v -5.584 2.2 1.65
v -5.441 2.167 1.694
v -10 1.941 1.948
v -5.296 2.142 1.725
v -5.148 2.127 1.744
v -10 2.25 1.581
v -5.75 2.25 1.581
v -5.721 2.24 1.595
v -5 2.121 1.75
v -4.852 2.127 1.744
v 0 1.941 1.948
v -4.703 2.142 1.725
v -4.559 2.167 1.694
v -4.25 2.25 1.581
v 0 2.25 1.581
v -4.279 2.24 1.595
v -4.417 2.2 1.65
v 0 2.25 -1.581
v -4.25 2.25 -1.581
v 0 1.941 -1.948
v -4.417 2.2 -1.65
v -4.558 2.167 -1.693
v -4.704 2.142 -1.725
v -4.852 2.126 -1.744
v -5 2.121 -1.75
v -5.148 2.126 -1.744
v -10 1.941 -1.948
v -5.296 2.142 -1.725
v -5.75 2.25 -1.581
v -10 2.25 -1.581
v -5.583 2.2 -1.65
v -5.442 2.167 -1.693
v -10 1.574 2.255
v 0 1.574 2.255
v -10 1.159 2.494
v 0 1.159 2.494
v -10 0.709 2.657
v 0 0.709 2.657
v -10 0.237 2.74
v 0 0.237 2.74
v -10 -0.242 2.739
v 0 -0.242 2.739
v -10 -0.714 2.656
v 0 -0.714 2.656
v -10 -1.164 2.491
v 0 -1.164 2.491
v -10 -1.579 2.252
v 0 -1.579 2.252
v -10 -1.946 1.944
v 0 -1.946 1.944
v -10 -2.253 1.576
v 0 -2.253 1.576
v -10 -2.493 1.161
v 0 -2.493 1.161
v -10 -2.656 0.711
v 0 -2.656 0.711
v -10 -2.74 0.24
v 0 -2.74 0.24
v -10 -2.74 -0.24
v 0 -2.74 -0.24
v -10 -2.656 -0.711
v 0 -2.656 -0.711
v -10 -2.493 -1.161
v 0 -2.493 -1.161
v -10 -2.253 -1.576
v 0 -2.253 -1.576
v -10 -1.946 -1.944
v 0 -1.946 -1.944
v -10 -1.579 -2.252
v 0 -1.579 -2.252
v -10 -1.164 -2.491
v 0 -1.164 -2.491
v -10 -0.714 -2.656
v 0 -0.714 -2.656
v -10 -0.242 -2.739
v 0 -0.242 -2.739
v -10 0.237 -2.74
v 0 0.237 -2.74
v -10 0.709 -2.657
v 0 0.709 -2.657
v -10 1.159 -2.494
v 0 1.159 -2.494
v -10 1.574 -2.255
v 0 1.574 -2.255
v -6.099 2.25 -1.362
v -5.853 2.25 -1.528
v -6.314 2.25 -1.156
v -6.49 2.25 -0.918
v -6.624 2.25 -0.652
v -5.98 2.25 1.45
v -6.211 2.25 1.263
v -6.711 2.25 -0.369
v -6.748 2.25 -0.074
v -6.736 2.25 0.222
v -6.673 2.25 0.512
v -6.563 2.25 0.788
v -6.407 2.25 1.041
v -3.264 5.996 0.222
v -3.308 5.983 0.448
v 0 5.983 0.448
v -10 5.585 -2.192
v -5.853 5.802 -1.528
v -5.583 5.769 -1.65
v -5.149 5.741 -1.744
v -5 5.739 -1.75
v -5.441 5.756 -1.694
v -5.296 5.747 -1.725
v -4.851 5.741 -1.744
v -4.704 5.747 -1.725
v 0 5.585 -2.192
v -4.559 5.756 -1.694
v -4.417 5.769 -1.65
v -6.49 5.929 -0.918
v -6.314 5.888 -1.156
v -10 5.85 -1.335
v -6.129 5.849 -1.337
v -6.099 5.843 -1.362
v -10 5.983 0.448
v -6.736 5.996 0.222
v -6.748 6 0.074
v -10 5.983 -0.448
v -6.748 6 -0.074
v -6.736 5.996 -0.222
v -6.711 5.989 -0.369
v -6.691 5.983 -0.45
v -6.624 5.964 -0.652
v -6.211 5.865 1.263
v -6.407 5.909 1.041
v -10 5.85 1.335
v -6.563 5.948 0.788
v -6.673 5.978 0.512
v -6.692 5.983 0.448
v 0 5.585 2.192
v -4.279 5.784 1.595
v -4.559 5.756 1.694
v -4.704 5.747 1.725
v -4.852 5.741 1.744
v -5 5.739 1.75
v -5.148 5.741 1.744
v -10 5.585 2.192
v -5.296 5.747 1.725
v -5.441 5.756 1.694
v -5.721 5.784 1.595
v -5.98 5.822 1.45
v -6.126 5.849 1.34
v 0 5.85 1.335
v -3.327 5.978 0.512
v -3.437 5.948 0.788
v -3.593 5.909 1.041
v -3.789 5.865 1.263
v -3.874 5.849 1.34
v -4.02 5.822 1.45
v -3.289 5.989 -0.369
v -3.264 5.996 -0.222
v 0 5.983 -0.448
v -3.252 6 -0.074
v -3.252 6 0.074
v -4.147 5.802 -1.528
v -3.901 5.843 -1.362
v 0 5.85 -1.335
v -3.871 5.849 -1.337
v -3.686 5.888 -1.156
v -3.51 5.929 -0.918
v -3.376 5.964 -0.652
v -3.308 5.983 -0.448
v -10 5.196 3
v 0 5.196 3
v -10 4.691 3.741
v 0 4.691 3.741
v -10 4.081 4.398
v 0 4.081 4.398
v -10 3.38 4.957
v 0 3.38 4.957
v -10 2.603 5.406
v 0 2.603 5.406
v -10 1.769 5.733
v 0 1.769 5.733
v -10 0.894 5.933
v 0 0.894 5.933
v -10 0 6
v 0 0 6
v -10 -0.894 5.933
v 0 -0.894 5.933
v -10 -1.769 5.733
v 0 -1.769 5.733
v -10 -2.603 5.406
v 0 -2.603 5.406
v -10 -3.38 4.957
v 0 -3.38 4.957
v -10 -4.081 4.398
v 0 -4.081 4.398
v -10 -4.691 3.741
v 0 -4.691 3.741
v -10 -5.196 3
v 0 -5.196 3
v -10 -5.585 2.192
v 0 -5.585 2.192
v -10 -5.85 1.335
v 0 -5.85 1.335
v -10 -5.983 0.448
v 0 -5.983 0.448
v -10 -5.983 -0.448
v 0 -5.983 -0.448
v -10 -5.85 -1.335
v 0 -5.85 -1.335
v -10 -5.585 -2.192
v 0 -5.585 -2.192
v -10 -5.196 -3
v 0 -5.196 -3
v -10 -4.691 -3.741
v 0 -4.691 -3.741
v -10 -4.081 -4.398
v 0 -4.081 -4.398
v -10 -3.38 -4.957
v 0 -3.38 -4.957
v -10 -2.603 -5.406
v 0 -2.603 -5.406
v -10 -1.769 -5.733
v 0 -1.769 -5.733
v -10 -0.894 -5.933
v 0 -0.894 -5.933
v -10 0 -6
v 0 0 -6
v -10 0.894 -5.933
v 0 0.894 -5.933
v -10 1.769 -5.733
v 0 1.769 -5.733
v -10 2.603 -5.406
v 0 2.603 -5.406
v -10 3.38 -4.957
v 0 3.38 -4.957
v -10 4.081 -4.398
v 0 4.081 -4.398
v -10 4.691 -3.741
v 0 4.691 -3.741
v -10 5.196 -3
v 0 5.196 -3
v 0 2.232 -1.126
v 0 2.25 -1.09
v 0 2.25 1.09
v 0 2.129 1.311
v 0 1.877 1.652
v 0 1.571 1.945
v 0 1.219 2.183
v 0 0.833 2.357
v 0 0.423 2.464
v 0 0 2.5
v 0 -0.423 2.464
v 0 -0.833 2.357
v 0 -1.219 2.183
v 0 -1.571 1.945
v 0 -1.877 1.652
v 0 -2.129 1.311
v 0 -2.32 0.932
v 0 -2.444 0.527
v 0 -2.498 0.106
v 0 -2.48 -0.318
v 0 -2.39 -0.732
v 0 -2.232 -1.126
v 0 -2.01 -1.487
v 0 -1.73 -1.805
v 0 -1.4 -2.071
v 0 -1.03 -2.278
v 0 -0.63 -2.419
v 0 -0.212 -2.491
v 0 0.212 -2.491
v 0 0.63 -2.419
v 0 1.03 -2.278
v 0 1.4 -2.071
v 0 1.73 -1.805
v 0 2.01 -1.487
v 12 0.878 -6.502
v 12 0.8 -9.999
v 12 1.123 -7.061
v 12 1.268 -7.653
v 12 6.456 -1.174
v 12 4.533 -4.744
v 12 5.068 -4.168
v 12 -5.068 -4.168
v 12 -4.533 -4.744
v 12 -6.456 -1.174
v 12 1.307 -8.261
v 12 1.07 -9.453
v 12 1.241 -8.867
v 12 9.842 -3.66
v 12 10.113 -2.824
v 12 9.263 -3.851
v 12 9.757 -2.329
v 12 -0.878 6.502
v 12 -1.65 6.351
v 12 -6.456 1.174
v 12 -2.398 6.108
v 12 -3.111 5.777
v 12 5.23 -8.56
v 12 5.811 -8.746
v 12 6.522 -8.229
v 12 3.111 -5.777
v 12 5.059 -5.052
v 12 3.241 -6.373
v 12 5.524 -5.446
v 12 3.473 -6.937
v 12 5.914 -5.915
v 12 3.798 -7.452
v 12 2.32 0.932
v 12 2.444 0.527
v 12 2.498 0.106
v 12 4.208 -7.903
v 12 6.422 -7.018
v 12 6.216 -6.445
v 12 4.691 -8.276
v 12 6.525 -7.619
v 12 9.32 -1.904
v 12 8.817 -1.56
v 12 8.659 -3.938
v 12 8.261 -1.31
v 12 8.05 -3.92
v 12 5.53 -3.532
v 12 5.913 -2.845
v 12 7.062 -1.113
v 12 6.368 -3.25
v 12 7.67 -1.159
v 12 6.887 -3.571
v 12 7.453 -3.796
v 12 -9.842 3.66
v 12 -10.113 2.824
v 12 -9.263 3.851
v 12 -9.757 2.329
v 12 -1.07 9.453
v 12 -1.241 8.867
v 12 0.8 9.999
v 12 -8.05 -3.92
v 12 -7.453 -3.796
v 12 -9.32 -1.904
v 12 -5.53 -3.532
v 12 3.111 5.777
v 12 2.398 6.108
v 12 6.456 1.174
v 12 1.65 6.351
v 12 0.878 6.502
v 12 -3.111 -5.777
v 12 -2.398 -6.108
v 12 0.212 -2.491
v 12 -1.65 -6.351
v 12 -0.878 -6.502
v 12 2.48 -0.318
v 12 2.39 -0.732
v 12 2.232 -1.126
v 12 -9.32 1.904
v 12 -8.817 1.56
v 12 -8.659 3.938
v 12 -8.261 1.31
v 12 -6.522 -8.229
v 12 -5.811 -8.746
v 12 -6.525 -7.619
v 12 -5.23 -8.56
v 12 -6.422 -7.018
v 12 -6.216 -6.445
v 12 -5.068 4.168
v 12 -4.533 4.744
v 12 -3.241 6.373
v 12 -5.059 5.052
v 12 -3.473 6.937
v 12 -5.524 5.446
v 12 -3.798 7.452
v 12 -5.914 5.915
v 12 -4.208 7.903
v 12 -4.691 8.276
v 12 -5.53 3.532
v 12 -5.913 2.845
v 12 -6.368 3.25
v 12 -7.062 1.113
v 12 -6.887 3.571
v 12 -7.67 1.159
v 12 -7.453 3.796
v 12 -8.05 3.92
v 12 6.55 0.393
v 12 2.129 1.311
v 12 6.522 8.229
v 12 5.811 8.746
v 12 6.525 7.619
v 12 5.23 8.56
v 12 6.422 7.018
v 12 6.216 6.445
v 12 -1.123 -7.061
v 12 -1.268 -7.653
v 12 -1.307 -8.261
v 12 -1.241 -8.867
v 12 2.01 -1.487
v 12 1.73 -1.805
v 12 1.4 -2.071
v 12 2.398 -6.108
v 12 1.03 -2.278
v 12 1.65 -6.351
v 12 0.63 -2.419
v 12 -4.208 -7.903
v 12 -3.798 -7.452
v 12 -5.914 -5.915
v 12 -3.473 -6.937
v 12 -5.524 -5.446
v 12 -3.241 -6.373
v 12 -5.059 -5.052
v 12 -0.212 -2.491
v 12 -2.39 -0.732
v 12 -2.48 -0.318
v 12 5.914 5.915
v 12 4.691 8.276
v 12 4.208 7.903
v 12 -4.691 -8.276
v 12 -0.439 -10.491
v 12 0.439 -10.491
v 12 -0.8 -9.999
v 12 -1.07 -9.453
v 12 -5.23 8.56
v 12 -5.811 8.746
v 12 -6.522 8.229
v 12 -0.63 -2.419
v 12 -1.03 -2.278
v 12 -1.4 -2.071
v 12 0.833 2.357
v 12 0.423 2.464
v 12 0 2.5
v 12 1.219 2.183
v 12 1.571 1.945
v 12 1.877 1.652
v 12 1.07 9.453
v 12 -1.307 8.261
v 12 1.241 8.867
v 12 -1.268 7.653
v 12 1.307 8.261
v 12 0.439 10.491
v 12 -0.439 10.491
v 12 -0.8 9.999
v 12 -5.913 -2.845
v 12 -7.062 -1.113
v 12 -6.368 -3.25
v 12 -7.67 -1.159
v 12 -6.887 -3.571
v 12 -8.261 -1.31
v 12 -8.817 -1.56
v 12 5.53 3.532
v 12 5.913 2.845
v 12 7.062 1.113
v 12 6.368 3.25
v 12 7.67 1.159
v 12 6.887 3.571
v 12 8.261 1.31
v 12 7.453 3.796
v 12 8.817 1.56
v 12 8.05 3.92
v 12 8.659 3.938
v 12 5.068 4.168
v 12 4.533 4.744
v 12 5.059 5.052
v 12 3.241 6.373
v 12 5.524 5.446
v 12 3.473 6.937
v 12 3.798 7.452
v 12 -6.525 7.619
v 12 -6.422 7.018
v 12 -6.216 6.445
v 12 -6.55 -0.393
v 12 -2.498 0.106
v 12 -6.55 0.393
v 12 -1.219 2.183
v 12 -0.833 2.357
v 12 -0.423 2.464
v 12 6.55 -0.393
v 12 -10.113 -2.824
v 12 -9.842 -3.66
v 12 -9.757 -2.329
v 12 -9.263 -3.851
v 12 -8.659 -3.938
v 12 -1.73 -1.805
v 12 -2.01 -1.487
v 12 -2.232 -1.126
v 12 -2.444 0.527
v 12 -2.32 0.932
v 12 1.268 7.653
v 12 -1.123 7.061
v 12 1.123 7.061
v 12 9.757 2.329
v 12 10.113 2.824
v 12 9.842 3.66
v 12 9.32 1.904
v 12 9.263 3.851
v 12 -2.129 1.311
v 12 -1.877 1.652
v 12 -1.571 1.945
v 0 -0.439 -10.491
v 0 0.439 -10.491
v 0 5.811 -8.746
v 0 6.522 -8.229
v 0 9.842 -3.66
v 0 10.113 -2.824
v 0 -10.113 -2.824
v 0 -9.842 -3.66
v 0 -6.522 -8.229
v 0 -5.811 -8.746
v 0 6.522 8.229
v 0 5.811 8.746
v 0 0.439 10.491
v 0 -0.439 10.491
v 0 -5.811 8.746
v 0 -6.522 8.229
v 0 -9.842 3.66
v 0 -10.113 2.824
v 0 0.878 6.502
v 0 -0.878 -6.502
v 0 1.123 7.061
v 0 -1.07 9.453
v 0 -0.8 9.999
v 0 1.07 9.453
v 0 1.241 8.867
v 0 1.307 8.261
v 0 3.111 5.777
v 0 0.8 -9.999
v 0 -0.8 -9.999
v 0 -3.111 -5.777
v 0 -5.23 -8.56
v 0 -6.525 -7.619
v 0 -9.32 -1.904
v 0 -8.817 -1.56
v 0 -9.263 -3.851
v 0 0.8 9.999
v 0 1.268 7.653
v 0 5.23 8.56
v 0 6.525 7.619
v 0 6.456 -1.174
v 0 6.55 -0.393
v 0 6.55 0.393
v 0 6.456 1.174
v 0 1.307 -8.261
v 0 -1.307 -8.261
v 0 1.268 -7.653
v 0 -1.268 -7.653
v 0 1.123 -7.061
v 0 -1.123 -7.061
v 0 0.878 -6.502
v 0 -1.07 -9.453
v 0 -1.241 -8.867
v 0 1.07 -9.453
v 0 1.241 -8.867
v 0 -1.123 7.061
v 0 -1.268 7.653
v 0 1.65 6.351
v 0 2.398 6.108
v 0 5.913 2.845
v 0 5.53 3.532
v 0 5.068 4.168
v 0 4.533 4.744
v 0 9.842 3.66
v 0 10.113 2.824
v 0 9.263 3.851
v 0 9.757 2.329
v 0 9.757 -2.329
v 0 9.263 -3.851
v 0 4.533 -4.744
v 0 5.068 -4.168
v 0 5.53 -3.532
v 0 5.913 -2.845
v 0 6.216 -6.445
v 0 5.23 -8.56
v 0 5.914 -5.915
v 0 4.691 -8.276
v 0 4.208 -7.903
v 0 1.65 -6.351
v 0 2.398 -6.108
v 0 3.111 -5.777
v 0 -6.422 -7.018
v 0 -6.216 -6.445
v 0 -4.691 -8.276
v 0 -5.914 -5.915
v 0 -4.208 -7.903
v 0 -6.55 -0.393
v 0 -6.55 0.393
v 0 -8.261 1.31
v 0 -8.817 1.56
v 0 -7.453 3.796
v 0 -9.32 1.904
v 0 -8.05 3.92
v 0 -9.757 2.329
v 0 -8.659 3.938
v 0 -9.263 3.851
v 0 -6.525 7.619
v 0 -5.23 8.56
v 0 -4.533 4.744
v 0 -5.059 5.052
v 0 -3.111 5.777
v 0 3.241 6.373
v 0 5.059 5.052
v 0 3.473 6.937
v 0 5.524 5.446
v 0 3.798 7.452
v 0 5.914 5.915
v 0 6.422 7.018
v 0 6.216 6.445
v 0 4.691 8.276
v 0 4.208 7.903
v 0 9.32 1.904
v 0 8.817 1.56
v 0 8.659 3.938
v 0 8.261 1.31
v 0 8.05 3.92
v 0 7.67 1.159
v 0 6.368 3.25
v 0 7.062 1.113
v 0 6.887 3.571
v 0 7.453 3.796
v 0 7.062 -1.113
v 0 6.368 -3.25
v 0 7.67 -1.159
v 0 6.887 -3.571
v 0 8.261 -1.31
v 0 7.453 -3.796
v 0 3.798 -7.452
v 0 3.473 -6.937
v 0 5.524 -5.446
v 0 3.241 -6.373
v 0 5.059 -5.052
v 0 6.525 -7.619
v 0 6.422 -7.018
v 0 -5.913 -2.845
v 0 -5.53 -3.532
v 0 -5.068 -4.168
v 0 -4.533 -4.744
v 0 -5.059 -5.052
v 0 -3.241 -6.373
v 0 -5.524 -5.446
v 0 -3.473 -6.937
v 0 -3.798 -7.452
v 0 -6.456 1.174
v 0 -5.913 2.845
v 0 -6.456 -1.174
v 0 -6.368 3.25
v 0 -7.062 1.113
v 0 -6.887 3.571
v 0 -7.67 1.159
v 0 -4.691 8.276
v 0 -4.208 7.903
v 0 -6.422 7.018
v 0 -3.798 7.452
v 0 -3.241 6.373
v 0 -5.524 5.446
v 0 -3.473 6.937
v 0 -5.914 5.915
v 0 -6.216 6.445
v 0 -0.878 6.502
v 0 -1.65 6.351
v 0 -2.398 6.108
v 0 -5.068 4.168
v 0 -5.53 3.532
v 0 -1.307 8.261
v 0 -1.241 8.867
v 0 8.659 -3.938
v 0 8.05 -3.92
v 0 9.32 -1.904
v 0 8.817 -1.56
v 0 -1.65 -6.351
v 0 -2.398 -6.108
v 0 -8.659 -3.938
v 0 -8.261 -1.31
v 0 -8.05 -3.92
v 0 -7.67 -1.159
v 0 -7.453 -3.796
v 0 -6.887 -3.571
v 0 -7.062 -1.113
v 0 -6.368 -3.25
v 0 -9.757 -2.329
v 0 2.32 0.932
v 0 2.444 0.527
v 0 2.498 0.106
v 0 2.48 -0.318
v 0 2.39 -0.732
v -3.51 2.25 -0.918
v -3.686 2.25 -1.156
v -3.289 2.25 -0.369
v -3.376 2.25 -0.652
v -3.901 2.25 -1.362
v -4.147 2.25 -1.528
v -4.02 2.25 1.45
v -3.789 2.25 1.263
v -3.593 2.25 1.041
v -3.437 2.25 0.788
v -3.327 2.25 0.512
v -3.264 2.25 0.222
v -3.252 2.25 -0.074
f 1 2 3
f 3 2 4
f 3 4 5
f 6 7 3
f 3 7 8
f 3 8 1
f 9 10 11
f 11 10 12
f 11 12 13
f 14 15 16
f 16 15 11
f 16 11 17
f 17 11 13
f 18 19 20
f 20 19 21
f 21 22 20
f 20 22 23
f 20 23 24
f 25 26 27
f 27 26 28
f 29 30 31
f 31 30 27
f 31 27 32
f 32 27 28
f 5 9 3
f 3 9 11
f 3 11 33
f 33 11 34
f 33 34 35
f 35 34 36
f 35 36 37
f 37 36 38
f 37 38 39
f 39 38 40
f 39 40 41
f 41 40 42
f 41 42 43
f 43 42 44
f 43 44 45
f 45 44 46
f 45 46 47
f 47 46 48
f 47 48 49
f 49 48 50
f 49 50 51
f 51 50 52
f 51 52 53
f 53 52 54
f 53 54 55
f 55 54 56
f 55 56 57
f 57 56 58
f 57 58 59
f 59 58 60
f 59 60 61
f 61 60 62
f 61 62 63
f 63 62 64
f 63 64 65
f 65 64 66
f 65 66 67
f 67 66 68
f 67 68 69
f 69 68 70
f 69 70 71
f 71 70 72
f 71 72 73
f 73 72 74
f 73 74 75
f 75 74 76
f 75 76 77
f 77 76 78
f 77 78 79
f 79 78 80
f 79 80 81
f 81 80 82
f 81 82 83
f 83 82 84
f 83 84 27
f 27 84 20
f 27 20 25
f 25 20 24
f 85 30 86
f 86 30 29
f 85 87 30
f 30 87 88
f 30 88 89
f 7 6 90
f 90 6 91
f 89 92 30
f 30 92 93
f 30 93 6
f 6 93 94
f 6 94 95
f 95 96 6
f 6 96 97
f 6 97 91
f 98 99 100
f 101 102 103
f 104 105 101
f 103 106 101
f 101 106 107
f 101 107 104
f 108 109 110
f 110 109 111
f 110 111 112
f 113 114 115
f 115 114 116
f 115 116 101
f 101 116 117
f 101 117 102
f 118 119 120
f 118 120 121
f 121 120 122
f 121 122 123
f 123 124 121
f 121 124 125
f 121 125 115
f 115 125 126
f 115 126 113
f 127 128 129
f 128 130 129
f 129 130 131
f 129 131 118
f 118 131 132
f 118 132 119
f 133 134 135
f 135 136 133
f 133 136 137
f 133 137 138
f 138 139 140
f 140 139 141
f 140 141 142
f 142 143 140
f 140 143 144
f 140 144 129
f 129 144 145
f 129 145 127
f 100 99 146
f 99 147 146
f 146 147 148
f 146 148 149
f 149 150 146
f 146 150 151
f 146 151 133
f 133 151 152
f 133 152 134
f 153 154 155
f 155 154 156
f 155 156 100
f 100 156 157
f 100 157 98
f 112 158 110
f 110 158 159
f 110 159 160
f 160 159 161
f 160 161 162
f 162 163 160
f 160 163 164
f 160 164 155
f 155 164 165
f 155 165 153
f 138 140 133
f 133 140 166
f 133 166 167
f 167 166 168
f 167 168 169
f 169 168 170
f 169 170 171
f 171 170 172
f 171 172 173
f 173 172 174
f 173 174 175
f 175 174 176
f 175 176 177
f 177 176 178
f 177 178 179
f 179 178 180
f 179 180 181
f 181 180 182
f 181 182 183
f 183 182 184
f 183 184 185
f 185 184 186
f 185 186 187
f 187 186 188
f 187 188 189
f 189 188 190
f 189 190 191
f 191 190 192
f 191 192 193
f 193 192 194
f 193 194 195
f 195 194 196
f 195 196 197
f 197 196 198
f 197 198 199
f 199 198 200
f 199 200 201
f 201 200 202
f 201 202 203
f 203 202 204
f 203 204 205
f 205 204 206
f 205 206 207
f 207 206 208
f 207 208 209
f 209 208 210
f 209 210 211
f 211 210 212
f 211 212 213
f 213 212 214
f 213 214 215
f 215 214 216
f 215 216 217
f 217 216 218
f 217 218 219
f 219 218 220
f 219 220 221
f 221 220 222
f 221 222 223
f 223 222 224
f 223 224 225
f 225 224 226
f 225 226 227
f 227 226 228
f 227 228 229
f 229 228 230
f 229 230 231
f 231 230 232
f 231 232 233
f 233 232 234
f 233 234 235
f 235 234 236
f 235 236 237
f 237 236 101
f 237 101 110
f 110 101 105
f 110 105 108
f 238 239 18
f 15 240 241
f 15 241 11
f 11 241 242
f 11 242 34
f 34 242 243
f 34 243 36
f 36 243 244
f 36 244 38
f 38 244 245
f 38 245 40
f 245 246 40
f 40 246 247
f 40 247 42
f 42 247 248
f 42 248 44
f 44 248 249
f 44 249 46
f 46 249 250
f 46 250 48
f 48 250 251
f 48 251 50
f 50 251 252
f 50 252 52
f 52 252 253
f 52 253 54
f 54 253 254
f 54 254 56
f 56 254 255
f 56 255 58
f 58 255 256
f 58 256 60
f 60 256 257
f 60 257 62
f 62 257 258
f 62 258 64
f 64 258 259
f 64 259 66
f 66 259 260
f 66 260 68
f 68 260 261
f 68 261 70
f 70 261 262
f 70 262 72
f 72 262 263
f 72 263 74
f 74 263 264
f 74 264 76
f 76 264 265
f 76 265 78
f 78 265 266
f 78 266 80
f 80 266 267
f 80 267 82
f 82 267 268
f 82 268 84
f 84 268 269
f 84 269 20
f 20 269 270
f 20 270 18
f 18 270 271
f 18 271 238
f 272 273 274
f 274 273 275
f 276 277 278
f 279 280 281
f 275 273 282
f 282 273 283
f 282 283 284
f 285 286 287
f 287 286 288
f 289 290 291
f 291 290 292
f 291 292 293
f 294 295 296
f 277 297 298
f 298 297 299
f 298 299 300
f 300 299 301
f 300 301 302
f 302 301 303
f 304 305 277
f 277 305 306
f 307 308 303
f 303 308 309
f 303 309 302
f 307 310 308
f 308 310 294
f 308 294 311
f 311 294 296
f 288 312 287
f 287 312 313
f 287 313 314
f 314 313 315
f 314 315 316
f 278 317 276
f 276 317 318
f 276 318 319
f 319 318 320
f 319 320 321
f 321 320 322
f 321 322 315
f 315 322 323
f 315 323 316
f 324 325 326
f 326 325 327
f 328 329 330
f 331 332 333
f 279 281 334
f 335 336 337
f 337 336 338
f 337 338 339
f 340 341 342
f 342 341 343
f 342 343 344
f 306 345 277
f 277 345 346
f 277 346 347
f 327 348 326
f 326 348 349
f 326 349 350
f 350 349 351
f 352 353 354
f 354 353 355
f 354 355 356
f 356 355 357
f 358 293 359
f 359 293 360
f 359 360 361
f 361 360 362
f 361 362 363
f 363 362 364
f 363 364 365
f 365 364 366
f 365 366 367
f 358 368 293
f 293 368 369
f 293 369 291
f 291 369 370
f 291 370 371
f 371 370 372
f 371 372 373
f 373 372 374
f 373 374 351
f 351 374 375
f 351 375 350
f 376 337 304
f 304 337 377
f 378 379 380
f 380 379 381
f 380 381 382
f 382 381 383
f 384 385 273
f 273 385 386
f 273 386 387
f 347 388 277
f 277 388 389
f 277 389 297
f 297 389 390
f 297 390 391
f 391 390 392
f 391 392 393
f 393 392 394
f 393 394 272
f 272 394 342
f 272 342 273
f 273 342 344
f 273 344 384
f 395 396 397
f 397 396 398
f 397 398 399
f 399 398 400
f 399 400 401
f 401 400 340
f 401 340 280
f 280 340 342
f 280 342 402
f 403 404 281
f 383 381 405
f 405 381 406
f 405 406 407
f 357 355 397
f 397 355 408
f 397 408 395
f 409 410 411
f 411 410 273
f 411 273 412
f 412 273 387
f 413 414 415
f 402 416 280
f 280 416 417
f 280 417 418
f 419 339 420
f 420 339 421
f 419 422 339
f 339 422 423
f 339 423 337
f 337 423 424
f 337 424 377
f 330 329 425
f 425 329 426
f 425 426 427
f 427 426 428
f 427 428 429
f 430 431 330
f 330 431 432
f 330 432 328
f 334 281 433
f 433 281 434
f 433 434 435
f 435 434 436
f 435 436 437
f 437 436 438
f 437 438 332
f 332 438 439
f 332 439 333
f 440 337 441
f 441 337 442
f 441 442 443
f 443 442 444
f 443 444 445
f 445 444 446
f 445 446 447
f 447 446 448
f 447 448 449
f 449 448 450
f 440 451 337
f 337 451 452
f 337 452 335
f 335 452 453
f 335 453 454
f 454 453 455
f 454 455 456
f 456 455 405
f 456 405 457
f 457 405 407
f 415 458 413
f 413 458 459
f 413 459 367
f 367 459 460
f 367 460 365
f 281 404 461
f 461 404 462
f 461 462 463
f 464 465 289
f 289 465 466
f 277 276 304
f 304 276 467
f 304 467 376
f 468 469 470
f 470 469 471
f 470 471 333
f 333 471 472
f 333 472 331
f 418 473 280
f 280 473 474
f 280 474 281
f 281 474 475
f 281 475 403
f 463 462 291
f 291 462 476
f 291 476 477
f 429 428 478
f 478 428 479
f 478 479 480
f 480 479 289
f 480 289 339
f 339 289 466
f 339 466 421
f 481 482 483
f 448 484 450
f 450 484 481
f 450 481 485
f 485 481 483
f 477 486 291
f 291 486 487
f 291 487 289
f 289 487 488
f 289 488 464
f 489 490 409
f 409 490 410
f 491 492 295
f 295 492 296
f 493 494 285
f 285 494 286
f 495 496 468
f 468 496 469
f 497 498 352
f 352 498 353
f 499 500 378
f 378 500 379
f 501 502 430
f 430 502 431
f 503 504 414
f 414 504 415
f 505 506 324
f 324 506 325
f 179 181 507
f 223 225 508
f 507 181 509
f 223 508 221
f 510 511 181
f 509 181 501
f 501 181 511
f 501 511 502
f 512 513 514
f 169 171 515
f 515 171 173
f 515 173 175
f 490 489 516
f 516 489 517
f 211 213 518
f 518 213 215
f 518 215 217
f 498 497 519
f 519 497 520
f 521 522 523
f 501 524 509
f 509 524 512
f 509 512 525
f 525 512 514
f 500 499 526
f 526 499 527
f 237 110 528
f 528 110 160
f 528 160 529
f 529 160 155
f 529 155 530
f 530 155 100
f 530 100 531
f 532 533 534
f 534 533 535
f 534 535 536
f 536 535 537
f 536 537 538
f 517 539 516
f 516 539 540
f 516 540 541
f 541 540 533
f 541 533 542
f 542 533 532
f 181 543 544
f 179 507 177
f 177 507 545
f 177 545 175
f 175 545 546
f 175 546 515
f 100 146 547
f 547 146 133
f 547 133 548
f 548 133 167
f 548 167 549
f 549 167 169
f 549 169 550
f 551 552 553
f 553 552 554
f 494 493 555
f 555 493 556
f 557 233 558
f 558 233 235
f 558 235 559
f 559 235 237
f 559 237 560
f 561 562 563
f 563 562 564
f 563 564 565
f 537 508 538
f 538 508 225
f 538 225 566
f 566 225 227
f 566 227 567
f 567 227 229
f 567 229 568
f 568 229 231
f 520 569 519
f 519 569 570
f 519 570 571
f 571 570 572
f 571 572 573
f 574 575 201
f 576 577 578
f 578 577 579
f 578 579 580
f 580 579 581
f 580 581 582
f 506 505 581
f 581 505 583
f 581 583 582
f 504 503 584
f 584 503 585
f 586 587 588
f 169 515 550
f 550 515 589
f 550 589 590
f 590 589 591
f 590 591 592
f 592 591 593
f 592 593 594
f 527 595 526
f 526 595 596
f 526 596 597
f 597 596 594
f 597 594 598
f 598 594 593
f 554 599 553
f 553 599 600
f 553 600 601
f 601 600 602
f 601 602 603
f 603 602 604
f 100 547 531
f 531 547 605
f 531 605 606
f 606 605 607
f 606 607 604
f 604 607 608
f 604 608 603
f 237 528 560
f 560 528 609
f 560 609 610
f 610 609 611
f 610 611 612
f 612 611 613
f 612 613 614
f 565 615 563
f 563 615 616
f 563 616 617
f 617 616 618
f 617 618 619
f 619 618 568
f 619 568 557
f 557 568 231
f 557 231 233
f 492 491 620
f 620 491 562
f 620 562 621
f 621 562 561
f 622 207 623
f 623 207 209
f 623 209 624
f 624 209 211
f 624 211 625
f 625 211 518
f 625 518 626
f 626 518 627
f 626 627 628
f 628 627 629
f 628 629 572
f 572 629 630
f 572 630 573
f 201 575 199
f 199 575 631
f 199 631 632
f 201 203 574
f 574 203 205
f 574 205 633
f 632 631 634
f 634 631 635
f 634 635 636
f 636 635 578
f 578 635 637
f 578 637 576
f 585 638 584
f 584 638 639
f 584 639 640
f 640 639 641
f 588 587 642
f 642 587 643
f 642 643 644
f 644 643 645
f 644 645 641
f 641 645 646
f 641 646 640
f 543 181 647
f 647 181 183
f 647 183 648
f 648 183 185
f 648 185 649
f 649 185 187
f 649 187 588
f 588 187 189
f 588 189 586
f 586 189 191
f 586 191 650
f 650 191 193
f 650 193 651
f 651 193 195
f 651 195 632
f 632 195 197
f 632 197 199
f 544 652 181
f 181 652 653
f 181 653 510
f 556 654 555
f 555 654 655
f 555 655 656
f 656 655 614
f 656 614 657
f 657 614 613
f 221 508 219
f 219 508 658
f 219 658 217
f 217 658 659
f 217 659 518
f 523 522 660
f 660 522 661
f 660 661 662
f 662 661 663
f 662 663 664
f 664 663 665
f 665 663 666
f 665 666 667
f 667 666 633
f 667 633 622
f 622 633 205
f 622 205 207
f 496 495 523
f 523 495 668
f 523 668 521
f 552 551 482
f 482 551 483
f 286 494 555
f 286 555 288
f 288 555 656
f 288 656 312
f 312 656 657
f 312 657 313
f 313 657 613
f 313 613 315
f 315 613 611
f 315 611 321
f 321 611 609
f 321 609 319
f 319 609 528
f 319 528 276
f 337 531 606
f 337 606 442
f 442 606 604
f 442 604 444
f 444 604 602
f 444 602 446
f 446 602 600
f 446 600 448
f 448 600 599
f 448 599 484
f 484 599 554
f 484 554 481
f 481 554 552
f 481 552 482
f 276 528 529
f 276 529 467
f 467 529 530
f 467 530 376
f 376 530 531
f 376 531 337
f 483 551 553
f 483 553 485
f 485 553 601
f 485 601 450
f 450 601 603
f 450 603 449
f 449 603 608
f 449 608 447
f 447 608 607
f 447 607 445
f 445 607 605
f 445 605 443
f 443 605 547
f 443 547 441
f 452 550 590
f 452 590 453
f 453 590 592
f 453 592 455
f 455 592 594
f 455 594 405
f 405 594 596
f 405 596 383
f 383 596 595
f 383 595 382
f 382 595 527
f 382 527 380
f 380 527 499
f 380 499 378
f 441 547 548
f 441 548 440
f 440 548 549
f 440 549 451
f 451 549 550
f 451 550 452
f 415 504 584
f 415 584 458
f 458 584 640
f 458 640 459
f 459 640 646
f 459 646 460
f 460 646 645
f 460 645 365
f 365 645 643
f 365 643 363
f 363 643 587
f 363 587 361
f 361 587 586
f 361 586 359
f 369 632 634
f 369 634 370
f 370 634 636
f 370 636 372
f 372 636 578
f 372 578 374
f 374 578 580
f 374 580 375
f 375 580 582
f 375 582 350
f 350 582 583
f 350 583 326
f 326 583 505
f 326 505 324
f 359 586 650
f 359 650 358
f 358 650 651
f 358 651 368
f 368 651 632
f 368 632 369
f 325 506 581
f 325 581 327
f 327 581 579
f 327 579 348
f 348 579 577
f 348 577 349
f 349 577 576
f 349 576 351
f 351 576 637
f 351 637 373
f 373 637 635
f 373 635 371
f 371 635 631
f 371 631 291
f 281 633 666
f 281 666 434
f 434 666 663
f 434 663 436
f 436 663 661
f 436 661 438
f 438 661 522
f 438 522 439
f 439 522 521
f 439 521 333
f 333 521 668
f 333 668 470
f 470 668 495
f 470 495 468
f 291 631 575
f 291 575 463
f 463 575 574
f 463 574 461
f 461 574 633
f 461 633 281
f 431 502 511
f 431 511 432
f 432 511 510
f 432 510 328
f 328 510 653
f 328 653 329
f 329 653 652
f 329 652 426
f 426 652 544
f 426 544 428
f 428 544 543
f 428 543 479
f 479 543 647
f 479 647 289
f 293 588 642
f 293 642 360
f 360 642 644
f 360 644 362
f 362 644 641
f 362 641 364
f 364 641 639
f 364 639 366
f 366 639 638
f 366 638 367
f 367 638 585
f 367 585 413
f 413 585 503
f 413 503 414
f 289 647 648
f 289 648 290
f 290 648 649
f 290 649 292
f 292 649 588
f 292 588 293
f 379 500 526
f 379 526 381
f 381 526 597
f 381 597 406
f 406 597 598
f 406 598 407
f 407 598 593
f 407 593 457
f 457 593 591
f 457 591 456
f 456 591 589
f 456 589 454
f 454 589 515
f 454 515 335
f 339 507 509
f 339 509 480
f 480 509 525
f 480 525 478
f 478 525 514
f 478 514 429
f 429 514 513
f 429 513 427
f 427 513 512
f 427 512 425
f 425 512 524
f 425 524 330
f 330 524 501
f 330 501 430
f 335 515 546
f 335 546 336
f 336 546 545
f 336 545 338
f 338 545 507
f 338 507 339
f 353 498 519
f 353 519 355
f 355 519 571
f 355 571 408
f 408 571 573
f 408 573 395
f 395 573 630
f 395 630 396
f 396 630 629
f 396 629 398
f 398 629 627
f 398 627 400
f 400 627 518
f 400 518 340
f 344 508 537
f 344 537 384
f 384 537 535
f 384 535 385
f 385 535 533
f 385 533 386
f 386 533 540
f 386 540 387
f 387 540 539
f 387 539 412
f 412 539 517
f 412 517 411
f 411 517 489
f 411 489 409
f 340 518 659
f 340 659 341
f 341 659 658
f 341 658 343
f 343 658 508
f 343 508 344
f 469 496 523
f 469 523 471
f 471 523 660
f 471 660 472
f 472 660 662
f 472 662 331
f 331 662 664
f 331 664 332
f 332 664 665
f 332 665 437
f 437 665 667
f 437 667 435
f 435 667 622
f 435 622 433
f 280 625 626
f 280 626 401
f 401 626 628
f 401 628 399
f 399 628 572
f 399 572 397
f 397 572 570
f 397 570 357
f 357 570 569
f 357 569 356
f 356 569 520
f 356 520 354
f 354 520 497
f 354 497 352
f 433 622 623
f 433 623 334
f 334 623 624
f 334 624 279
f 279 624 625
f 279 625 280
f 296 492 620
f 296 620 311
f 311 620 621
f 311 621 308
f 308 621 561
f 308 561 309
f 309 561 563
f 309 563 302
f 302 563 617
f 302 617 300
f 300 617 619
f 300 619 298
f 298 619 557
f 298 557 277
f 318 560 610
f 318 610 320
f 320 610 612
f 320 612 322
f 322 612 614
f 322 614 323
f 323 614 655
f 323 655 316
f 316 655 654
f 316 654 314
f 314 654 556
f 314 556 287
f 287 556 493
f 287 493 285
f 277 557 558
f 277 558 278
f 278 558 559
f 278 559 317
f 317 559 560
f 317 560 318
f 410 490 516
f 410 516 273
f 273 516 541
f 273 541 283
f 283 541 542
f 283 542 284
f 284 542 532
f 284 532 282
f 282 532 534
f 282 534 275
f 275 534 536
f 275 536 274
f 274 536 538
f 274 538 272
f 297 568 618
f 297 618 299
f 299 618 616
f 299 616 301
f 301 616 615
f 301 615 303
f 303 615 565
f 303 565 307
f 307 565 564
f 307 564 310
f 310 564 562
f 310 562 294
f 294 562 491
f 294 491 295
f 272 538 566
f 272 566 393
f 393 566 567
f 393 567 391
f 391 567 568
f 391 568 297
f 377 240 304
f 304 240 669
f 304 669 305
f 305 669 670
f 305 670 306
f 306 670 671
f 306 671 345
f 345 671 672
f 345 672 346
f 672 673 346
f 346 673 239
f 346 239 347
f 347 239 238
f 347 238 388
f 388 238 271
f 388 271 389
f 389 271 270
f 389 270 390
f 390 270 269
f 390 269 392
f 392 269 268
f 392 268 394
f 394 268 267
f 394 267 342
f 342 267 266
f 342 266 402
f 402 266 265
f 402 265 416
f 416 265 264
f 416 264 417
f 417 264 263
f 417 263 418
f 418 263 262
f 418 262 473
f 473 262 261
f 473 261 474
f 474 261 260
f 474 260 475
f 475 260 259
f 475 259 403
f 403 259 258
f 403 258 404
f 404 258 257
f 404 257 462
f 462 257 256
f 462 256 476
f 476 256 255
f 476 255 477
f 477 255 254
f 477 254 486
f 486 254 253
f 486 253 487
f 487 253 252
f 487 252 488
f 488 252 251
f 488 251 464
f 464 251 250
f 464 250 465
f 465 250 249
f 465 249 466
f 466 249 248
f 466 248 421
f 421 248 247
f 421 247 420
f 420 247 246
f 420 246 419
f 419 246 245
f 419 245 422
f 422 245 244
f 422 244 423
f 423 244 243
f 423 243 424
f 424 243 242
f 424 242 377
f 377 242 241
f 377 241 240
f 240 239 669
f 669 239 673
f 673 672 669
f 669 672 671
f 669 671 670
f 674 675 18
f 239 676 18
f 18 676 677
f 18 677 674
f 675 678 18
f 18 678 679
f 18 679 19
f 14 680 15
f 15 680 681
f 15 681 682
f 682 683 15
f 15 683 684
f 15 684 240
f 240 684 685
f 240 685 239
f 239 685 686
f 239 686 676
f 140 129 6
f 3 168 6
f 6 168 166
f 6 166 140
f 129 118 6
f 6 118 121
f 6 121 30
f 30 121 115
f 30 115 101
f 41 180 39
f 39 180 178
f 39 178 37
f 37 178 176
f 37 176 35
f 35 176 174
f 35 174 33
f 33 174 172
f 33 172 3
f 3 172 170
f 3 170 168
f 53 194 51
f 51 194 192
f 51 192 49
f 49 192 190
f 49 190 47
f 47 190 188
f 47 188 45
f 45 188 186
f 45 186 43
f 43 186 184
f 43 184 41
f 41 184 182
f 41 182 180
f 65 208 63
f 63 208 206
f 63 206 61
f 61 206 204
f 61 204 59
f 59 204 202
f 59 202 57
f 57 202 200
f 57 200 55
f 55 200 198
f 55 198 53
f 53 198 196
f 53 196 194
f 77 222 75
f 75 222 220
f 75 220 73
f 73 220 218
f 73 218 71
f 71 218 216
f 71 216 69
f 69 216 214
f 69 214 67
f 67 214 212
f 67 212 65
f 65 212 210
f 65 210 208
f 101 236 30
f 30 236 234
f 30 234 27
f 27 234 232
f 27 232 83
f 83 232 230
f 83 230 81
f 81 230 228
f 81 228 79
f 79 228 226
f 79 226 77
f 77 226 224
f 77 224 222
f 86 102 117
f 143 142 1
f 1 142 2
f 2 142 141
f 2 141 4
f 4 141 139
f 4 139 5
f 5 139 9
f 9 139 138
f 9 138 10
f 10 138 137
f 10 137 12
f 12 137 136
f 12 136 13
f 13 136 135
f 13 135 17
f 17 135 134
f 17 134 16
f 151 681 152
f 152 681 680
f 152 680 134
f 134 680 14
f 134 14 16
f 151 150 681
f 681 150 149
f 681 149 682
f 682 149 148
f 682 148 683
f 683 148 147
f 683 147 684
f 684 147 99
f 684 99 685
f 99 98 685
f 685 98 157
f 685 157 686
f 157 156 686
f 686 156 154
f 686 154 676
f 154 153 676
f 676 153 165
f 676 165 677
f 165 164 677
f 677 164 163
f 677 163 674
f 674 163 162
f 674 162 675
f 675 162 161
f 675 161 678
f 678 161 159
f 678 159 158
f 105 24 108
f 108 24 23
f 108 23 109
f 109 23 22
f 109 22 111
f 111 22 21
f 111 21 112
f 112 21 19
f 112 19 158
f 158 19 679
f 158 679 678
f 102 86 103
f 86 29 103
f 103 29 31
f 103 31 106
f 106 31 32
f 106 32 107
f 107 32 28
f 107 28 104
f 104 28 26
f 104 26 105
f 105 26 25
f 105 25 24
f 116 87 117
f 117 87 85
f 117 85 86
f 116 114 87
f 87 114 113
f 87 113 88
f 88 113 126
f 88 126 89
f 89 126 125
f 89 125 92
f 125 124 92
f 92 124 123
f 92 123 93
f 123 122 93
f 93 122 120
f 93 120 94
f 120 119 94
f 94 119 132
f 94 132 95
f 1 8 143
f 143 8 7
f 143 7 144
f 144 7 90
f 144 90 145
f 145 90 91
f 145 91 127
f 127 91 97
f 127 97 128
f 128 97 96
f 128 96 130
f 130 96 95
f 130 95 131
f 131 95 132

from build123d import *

# Parameters (mm, degrees)
BASPROSKE_W         = 12
BASPROSKE_H         = 10.5
TOOTHCUT_DEPTH      = 13
TEETHCUTS_COUNT     = 10
TEETHCUTS_ANGLE     = 324
BORSKE_R            = 2.5
BORE_DEPTH          = 50.0000508
SKETCH2_R           = 6
SKETCH2_R_2         = 2.75
BOSS_EXTRUDE1_DEPTH = 10
CUT_EXTRUDE1_DEPTH  = 10


with BuildPart() as part:
    # BasProSke → Base-Revolve (revolve)
    with BuildSketch(Plane(origin=(0, 0, 0), x_dir=(1, 0, 0), z_dir=(0, 1, 0))):
        with Locations((6, 5.25)):
            Rectangle(BASPROSKE_W, BASPROSKE_H)
    revolve(axis=Axis((-10, 0, 0), (1, 0, 0)))

    # TooCutSke → ToothCut (cut, through all)
    with BuildSketch(Plane(origin=(0, 0, 0), x_dir=(0, 0, -1), z_dir=(1, 0, 0))):
        with BuildLine():
            ThreePointArc((1.173901537, 6.455636098), (0, 6.5615), (-1.173901537, 6.455636098))
            ThreePointArc((-1.173901537, 6.455636098), (-1.430021039, 8.560346018), (-2.854248526, 10.131007379))
            ThreePointArc((-2.854248526, 10.131007379), (0, 10.5254), (2.854248526, 10.131007379))
            ThreePointArc((2.854248526, 10.131007379), (1.430021039, 8.560346018), (1.173901537, 6.455636098))
        make_face()
    toothcut = extrude(amount=TOOTHCUT_DEPTH, mode=Mode.SUBTRACT)

    # TeethCuts: ToothCut ×10 about axis
    teethcuts_axis = Axis((-10, 0, 0), (1, 0, 0))
    for i in range(1, TEETHCUTS_COUNT):
        add(toothcut.rotate(teethcuts_axis, i * TEETHCUTS_ANGLE / (TEETHCUTS_COUNT - 1)), mode=Mode.SUBTRACT)

    # BorSke → Bore (cut, symmetric)
    with BuildSketch(Plane(origin=(0, 0, 0), x_dir=(0, 0, -1), z_dir=(1, 0, 0))):
        Circle(BORSKE_R)
    extrude(amount=BORE_DEPTH, both=True, mode=Mode.SUBTRACT)

    # Sketch2 → Boss-Extrude1 (add)
    with BuildSketch(Plane.ZY):
        Circle(SKETCH2_R)
        Circle(SKETCH2_R_2, mode=Mode.SUBTRACT)
        with BuildLine():
            ThreePointArc((1.58113883, 2.25), (0.829156198, 2.62202212), (0, 2.75))
            Line((0, 2.75), (0, 2.5))
            ThreePointArc((0, 2.5), (0.559016994, 2.436698586), (1.089724736, 2.25))
            Line((1.089724736, 2.25), (1.58113883, 2.25))
        make_face()
        with BuildLine():
            Line((0, 2.5), (0, 2.75))
            ThreePointArc((0, 2.75), (-0.829156198, 2.62202212), (-1.58113883, 2.25))
            Line((-1.58113883, 2.25), (-1.089724736, 2.25))
            ThreePointArc((-1.089724736, 2.25), (-0.559016994, 2.436698586), (0, 2.5))
        make_face()
        with BuildLine():
            ThreePointArc((1.089724736, 2.25), (0.559016994, 2.436698586), (0, 2.5))
            Line((0, 2.5), (0, 2.25))
            Line((0, 2.25), (1.089724736, 2.25))
        make_face()
        with BuildLine():
            Line((0, 2.25), (0, 2.5))
            ThreePointArc((0, 2.5), (-0.559016994, 2.436698586), (-1.089724736, 2.25))
            Line((-1.089724736, 2.25), (0, 2.25))
        make_face()
    extrude(amount=BOSS_EXTRUDE1_DEPTH)

    # Sketch4 → Cut-Extrude1 (cut)
    with BuildSketch(Plane(origin=(0, 0, 0), x_dir=(1, 0, 0), z_dir=(0, 1, 0))):
        with BuildLine():
            ThreePointArc((-3.25, 0), (-5, 1.75), (-6.75, 0))
            Line((-6.75, 0), (-3.25, 0))
        make_face()
        with BuildLine():
            Line((-3.25, 0), (-6.75, 0))
            ThreePointArc((-6.75, 0), (-5, -1.75), (-3.25, 0))
        make_face()
    extrude(amount=CUT_EXTRUDE1_DEPTH, mode=Mode.SUBTRACT)


solid = part.part
